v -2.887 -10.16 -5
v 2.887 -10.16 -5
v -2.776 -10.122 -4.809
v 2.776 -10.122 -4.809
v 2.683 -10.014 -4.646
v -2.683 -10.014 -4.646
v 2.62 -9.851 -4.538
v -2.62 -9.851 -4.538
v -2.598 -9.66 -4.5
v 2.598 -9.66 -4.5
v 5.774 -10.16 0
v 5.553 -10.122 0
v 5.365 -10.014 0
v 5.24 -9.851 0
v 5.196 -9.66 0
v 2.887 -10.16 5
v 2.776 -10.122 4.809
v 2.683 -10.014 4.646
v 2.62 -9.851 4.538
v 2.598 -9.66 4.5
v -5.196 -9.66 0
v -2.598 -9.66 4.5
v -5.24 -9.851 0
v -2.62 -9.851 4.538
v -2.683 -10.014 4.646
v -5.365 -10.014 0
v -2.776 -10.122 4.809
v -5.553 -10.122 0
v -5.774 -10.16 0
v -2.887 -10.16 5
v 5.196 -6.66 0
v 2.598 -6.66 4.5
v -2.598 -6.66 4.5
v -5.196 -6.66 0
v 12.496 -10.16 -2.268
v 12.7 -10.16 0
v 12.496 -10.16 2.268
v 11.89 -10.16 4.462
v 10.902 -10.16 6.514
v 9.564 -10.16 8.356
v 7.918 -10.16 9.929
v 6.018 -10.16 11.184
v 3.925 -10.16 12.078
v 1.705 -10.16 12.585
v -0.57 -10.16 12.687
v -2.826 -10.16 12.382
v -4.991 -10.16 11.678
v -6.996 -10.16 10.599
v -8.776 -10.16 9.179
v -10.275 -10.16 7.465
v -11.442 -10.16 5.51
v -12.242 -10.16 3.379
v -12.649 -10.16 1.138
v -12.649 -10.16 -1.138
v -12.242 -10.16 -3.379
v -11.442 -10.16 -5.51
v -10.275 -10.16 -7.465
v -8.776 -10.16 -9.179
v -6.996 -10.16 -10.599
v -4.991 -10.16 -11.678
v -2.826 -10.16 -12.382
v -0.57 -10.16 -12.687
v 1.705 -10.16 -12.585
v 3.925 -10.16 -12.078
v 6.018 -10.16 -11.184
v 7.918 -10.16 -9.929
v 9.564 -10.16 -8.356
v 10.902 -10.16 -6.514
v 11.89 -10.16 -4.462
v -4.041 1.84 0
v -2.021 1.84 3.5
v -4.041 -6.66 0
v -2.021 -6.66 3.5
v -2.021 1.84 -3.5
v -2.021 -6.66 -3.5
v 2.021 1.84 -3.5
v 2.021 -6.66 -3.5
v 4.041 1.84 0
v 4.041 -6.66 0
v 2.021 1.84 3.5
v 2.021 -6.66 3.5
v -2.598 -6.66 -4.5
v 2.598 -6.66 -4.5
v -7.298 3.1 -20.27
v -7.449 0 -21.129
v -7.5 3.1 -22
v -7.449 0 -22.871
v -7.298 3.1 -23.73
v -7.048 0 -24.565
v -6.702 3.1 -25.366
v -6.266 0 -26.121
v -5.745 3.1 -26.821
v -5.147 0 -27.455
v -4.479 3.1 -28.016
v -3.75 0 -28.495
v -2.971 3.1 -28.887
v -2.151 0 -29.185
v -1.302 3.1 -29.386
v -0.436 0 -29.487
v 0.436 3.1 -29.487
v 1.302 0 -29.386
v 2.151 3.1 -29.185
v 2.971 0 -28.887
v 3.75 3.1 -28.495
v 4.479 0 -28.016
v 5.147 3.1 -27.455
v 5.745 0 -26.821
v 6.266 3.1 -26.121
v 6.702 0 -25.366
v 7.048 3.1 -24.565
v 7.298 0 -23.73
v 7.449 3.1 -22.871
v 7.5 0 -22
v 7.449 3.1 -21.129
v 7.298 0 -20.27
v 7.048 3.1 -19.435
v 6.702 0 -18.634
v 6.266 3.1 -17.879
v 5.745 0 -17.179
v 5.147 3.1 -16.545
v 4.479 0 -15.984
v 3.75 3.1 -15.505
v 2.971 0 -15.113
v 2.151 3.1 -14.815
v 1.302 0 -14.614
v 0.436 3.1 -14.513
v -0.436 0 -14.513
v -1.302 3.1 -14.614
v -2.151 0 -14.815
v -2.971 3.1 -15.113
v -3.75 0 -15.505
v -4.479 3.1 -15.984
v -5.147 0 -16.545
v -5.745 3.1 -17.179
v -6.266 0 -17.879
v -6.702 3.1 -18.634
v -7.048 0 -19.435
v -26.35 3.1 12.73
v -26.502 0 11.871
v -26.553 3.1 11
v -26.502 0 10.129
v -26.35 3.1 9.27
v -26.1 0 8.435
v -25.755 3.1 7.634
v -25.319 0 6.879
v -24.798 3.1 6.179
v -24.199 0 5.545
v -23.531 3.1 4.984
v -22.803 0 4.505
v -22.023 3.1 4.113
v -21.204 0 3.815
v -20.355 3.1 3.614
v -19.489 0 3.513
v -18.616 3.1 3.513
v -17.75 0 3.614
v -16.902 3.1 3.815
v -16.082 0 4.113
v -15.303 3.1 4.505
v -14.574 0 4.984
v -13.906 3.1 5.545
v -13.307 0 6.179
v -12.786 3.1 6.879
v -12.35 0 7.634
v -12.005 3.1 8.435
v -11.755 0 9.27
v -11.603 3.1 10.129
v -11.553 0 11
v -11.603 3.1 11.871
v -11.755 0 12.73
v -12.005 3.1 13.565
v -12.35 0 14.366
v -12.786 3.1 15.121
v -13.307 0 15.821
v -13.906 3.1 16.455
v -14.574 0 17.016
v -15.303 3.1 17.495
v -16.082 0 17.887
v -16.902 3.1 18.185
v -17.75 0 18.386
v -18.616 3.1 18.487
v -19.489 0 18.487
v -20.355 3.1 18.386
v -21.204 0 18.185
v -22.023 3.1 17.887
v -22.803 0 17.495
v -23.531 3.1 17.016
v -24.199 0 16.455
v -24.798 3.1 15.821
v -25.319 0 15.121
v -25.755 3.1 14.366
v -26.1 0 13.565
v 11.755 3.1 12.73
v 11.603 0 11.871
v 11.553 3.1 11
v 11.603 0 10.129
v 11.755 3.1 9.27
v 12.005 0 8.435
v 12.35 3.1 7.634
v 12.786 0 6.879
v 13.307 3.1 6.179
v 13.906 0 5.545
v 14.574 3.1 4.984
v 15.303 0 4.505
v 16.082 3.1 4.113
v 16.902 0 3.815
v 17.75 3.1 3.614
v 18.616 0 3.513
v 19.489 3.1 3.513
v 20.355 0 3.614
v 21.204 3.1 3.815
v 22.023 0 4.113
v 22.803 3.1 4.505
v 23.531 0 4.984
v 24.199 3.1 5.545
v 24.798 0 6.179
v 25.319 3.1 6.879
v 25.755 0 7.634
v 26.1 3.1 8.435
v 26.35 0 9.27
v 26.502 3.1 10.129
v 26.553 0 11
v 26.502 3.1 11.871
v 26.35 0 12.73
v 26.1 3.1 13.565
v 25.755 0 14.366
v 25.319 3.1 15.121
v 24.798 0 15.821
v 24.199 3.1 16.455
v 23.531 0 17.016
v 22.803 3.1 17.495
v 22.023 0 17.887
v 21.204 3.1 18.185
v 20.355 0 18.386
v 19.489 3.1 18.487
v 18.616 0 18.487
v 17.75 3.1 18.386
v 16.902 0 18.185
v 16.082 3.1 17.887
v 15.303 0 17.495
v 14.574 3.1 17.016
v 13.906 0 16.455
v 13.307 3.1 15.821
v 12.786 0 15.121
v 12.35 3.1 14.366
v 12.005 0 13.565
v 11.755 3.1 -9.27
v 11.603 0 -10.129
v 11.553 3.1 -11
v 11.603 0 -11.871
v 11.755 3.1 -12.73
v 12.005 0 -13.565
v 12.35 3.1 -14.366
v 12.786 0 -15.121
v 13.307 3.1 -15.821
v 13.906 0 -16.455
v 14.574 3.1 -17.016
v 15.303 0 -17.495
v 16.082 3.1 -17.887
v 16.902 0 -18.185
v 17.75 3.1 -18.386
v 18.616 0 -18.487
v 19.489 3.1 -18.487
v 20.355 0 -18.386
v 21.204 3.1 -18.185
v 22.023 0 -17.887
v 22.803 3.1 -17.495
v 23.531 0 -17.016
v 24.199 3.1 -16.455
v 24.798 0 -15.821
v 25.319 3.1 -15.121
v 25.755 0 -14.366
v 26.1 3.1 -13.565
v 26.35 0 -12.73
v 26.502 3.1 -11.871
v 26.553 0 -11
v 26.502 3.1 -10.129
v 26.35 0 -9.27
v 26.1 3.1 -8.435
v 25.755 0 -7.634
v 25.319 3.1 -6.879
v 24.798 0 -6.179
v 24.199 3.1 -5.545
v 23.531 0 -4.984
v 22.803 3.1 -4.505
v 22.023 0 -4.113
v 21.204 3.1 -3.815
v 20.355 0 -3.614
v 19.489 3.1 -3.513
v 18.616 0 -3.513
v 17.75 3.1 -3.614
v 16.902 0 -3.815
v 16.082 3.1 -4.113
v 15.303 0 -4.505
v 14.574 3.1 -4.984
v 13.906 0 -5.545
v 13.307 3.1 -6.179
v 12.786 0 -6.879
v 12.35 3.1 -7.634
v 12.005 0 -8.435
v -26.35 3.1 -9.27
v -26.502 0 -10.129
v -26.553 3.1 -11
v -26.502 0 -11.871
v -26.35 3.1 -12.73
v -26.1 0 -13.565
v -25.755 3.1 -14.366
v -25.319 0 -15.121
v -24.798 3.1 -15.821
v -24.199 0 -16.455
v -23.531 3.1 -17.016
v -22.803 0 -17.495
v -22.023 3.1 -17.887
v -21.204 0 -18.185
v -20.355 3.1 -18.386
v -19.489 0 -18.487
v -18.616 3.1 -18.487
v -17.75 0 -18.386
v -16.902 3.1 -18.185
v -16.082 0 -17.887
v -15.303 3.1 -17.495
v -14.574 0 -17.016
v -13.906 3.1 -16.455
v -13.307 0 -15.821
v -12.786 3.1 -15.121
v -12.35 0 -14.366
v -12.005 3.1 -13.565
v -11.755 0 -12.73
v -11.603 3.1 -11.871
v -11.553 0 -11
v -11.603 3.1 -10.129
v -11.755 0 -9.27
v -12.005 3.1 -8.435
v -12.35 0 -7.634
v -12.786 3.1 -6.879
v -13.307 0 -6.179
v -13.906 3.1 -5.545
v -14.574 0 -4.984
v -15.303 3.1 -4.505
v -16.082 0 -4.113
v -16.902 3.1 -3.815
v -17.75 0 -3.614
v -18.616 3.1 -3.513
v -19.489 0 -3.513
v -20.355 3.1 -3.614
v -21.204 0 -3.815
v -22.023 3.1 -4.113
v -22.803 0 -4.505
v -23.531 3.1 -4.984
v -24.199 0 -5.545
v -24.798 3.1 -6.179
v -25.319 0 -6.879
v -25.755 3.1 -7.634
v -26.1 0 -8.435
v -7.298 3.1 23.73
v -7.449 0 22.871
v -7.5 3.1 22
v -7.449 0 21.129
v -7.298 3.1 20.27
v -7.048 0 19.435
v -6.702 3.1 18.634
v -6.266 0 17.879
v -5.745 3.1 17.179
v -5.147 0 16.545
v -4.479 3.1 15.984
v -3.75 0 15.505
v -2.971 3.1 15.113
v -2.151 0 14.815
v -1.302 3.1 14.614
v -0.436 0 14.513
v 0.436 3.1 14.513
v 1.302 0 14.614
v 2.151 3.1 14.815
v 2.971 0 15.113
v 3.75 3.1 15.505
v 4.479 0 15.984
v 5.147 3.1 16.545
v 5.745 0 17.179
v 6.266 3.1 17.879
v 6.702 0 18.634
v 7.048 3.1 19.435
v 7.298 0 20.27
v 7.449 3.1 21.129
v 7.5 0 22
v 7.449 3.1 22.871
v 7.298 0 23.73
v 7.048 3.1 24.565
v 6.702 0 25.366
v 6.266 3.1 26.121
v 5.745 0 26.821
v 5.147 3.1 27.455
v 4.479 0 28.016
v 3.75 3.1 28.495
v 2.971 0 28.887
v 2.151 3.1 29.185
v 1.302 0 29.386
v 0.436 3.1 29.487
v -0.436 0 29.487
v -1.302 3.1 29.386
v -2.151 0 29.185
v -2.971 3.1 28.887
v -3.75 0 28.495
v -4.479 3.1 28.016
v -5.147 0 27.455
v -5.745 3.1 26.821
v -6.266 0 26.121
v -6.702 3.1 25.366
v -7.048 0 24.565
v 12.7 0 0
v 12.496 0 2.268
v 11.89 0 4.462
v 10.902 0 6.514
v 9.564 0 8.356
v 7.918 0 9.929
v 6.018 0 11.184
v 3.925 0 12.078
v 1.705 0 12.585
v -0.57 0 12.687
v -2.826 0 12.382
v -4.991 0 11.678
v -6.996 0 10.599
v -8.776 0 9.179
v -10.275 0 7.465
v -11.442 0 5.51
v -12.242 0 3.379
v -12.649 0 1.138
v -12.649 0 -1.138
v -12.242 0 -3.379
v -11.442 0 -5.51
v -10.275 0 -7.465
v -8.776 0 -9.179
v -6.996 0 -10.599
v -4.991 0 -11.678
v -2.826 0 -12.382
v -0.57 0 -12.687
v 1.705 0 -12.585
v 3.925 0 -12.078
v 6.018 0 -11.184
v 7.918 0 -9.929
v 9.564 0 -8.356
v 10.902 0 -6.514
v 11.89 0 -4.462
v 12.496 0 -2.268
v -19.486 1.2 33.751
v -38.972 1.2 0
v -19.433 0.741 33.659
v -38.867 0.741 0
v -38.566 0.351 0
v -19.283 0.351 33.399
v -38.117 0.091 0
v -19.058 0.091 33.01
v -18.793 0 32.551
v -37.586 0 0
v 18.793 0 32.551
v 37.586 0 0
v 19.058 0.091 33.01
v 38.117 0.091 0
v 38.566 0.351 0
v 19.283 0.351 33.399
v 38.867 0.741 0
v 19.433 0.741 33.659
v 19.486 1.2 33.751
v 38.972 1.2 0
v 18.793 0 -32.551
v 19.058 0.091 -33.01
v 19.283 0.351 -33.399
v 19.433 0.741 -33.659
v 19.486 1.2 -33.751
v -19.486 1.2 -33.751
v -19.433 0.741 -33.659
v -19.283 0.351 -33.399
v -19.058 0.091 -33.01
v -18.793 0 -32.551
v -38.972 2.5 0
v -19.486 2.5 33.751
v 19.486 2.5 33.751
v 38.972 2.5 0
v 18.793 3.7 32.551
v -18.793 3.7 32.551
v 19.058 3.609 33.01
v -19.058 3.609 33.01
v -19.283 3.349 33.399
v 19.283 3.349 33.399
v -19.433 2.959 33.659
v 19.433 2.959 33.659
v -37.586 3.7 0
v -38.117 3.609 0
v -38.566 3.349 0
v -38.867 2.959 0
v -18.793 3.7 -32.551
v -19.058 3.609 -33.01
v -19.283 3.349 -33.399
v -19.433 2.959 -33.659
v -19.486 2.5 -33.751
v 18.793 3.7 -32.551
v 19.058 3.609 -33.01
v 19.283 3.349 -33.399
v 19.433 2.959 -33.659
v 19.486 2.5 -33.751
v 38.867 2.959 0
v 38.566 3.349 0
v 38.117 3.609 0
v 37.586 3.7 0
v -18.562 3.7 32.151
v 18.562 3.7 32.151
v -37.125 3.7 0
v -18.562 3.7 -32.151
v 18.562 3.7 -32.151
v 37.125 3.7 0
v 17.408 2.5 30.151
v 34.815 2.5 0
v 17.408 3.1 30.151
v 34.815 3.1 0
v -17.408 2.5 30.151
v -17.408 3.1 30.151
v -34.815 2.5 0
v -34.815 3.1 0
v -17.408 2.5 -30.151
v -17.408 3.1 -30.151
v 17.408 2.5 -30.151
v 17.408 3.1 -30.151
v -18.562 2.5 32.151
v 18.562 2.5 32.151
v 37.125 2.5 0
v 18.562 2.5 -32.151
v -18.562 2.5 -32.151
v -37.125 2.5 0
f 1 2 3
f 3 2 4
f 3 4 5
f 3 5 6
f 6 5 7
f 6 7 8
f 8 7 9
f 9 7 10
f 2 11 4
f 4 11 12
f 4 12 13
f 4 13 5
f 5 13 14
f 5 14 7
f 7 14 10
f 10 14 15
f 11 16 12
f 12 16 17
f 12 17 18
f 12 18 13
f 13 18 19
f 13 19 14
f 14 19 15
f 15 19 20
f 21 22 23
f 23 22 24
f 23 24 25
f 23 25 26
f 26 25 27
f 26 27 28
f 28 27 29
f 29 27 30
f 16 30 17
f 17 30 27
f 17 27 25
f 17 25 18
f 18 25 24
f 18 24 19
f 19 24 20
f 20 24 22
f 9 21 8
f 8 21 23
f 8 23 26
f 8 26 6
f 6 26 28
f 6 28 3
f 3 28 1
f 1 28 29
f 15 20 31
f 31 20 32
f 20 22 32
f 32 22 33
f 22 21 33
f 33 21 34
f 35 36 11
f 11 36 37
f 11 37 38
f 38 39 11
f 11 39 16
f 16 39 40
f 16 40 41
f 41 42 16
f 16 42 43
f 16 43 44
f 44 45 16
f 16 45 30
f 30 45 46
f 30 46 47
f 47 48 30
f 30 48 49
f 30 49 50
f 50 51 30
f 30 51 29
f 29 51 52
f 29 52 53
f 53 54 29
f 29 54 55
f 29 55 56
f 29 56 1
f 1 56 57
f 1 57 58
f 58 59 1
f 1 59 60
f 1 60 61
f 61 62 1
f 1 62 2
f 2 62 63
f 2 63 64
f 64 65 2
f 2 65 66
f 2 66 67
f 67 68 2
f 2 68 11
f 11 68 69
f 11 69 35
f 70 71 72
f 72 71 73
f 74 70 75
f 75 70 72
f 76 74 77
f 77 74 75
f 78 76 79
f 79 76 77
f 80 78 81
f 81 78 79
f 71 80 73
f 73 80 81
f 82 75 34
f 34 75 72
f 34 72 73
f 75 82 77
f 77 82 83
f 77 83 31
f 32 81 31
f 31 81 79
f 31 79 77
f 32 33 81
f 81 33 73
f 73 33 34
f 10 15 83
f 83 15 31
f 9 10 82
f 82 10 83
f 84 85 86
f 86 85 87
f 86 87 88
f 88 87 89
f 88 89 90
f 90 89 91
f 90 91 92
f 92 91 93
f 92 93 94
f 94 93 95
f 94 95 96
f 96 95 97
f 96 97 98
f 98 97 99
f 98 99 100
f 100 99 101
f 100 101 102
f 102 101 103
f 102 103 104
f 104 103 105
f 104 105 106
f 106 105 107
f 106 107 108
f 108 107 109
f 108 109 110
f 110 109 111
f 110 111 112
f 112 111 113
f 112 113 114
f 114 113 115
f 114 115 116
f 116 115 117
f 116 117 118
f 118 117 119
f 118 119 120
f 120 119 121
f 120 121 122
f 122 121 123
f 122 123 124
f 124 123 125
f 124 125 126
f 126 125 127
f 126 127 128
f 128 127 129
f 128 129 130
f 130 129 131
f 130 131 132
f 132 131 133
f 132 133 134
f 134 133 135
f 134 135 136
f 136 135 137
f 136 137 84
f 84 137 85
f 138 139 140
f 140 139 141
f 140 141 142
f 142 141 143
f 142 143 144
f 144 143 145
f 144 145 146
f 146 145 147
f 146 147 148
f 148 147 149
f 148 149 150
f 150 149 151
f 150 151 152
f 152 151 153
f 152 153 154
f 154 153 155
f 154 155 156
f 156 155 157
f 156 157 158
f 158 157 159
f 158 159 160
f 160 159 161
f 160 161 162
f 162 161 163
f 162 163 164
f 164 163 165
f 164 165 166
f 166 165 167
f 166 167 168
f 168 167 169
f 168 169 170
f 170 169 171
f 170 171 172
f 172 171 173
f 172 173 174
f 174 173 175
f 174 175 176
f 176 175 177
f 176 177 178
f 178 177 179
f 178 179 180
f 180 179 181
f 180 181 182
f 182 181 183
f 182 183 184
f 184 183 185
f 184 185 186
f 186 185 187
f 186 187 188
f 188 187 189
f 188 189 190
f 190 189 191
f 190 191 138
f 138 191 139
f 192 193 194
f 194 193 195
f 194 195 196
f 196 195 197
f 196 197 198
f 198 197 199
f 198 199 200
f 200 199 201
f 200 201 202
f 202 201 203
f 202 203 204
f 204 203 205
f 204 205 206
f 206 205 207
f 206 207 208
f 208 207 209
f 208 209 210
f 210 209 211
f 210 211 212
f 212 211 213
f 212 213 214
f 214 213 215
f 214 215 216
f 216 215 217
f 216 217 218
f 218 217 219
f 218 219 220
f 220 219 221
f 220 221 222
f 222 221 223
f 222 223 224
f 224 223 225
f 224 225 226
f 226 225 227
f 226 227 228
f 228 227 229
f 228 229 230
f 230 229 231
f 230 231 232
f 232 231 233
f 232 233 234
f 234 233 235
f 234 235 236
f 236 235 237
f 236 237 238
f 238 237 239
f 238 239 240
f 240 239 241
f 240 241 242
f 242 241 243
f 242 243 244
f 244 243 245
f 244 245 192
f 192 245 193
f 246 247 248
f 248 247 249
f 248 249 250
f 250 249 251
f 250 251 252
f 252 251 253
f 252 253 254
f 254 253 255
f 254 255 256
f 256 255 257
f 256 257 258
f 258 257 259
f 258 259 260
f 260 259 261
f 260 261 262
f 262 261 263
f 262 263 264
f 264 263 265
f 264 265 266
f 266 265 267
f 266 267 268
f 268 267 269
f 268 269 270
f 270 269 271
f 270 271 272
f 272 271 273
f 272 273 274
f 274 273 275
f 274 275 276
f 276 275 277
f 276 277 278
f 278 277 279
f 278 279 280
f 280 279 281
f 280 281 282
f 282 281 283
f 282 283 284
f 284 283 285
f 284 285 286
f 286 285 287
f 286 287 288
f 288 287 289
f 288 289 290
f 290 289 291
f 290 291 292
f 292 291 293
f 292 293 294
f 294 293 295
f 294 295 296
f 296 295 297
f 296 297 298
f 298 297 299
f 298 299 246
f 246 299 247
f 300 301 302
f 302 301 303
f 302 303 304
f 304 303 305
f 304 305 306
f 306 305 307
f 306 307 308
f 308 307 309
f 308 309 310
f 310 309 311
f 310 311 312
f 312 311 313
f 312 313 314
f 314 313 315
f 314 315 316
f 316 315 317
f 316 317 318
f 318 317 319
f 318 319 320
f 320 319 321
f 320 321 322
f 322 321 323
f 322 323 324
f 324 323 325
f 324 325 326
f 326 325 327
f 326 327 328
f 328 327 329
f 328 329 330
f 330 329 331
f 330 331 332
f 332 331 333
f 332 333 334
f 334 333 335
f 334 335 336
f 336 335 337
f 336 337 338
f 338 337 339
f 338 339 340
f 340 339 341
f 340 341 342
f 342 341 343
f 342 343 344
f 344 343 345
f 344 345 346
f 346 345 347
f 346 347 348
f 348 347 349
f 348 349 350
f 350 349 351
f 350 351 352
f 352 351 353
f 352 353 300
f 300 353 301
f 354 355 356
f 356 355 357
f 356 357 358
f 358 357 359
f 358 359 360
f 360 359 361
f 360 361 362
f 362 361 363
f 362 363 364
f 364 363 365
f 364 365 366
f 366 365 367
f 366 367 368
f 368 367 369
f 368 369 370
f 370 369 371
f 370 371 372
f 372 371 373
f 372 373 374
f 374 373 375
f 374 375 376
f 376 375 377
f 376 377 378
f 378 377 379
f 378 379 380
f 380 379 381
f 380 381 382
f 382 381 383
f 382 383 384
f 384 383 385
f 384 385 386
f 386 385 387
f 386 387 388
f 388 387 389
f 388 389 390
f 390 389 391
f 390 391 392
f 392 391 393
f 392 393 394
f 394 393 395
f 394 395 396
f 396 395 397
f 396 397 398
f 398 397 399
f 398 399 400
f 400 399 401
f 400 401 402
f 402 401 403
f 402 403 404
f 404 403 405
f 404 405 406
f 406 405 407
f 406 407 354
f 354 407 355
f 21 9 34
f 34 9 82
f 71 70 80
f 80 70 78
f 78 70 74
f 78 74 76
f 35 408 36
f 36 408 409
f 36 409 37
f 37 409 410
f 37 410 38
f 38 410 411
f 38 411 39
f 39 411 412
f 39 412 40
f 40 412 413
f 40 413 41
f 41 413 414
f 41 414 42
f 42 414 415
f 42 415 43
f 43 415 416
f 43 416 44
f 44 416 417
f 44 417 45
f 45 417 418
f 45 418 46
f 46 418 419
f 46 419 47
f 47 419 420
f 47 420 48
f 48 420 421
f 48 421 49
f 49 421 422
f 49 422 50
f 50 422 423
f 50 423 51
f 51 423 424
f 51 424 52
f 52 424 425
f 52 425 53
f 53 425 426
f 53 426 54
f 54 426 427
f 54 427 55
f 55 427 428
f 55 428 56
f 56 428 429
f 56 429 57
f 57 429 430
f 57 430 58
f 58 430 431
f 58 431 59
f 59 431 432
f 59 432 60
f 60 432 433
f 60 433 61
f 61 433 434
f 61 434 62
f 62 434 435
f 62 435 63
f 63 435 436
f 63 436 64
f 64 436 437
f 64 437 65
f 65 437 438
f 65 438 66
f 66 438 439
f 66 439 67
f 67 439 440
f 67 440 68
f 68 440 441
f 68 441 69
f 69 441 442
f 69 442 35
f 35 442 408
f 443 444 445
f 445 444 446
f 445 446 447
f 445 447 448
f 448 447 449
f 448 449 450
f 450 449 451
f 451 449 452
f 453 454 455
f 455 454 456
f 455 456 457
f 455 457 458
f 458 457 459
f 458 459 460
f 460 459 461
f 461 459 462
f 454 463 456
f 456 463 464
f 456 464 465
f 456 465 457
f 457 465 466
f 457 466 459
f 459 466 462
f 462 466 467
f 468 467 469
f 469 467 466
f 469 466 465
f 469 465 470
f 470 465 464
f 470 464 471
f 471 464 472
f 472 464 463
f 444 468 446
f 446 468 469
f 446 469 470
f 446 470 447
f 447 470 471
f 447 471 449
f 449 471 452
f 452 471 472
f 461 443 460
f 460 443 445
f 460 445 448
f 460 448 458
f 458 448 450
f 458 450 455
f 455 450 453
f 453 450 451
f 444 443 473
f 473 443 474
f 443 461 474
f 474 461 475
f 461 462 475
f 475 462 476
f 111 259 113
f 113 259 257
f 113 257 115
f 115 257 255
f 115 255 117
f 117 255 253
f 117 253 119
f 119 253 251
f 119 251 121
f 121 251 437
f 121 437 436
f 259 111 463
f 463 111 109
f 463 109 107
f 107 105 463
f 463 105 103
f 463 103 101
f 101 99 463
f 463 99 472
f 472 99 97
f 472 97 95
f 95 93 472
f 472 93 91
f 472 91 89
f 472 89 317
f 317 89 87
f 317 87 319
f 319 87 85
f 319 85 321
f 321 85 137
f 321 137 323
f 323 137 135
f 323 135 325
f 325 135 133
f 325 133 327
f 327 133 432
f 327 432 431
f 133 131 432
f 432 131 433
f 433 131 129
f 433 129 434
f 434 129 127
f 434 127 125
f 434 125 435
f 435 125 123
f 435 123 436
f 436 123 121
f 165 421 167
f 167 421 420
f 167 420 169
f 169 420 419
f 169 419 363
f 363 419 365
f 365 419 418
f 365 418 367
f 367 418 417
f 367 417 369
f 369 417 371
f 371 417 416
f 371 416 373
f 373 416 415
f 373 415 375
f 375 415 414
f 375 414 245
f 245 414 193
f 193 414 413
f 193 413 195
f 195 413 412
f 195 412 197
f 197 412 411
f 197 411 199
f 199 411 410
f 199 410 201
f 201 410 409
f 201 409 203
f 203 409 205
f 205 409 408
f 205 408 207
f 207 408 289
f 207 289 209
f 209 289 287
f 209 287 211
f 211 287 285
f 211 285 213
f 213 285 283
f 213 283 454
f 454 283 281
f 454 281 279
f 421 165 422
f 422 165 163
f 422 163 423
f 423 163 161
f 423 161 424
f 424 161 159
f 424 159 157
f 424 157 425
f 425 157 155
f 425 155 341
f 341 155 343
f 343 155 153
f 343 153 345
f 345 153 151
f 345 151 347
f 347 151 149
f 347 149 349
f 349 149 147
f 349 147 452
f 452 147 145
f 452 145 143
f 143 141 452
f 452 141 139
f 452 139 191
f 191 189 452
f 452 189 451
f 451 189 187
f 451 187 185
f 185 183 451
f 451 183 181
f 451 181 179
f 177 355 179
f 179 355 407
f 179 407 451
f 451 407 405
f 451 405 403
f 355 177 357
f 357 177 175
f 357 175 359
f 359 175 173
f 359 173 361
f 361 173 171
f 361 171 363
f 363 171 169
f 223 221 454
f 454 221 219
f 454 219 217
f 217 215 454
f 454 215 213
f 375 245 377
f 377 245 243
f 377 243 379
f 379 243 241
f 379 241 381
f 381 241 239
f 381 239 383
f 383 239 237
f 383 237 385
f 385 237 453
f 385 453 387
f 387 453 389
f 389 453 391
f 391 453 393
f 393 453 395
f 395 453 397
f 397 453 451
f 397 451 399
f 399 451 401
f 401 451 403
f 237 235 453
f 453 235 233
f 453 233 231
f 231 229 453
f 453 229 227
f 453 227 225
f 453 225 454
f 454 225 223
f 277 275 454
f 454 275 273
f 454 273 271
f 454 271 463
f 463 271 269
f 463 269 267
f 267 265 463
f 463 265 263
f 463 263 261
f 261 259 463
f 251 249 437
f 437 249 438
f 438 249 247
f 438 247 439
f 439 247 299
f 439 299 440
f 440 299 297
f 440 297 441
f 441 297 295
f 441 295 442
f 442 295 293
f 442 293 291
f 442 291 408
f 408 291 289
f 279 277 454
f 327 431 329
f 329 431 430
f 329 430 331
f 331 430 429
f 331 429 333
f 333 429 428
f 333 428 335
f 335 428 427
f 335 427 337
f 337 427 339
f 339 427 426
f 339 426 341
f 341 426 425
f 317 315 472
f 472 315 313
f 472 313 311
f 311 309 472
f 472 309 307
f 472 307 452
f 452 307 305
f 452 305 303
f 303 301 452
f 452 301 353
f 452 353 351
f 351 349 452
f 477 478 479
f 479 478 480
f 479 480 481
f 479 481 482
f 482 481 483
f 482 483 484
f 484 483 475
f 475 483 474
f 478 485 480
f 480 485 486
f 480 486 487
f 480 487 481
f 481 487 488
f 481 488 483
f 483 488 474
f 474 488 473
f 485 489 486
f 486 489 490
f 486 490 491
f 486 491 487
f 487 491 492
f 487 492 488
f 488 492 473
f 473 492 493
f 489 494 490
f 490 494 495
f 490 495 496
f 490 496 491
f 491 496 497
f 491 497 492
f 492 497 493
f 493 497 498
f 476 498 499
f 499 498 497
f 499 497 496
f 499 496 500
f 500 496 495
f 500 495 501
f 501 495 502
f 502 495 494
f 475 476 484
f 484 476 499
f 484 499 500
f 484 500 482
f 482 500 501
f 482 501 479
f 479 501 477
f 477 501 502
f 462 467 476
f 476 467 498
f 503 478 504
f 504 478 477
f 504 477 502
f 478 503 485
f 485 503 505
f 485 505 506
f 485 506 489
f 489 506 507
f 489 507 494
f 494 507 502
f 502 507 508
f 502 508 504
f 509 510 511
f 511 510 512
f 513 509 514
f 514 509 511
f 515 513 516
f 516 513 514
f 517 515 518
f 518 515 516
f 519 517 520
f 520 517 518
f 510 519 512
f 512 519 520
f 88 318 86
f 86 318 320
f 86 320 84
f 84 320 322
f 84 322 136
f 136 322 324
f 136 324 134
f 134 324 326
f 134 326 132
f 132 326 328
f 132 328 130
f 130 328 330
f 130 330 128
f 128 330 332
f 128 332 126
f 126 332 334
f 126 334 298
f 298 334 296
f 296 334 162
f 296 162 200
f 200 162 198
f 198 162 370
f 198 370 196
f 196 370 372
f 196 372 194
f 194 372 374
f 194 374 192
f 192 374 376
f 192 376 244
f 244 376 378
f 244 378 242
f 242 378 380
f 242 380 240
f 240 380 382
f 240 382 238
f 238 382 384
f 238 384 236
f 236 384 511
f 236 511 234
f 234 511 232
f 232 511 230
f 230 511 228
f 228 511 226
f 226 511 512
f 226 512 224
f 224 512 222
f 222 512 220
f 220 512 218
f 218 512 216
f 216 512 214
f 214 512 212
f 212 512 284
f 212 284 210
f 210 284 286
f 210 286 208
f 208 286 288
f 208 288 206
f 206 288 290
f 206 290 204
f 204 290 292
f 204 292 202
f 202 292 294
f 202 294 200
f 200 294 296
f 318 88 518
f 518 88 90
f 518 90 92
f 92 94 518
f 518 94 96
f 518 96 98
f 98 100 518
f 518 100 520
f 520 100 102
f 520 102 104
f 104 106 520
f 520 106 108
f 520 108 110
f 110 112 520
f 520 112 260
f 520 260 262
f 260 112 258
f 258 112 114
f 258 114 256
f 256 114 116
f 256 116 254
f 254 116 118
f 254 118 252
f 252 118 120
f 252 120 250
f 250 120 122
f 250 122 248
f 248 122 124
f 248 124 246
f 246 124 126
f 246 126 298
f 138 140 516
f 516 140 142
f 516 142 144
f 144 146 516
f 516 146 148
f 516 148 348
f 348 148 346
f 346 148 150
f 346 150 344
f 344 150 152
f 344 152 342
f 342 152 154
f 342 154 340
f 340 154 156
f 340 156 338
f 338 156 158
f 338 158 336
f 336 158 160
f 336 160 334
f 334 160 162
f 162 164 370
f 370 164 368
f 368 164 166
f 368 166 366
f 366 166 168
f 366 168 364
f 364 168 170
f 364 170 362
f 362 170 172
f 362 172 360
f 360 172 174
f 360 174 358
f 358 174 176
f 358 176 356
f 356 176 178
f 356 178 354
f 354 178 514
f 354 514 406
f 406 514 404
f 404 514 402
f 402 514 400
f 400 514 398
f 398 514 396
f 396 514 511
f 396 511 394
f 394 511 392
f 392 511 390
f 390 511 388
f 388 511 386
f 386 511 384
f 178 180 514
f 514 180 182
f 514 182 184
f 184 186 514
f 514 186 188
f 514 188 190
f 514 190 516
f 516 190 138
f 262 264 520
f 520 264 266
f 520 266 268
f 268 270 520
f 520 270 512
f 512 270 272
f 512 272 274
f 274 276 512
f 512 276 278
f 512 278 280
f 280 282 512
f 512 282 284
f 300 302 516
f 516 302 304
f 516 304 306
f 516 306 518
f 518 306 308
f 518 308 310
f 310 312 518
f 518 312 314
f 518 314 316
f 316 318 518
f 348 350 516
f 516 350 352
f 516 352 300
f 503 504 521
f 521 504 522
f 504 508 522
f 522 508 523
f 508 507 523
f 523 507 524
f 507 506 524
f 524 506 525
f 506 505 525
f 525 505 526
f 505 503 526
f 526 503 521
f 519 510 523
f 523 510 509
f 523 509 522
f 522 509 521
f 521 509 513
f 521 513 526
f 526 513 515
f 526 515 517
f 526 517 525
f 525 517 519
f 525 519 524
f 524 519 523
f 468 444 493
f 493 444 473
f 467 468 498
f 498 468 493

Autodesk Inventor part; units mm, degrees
ref_plane "YZ Plane" through (0, 0, 0) normal (1, 0, 0) x (0, 1, 0)
ref_plane "XZ Plane" through (0, 0, 0) normal (0, 1, 0) x (-1, 0, 0)
ref_plane "XY Plane" through (0, 0, 0) normal (0, 0, 1) x (1, 0, 0)
sketch "스케치1" plane through (0, 0, 0) normal (0, 1, 0) x (-1, 0, 0)
  line L0 (17.6385, -30.5508) -> (-17.6385, -30.5508)
  line L1 (-17.6385, -30.5508) -> (-35.277, 0)
  line L2 (-35.277, 0) -> (-17.6385, 30.5508)
  line L3 (-17.6385, 30.5508) -> (17.6385, 30.5508)
  line L4 (17.6385, 30.5508) -> (35.277, 0)
  line L5 (35.277, 0) -> (17.6385, -30.5508)
  line L6 (19.486, -33.7508) -> (-19.486, -33.7508)
  line L7 (-19.486, -33.7508) -> (-38.972, 0)
  line L8 (-38.972, 0) -> (-19.486, 33.7508)
  line L9 (-19.486, 33.7508) -> (19.486, 33.7508)
  line L10 (19.486, 33.7508) -> (38.972, 0)
  line L11 (38.972, 0) -> (19.486, -33.7508)
  point P0 (0, 0)
  point P1 (0, 0)
  point P2 (0, 0)
  dimension "d0" = 70.554
  dimension "d1" = 3.2
extrude "돌출1" add sketch "스케치1" along normal blind 3.7 contours L0 L1 L2 L3 L4 L5 | L6 L7 L8 L9 L10 L11
sketch "스케치2" plane through (0, 3.7, 0) normal (0, 1, 0) x (1, 0, 0)
  line L0 (-18.5623, 32.1508) -> (18.5623, 32.1508)
  line L1 (18.5623, 32.1508) -> (37.1245, 0)
  line L2 (37.1245, 0) -> (18.5623, -32.1508)
  line L3 (18.5623, -32.1508) -> (-18.5623, -32.1508)
  line L4 (-18.5623, -32.1508) -> (-37.1245, 0)
  line L5 (-37.1245, 0) -> (-18.5623, 32.1508)
  line L6 (-19.486, 33.7508) -> (-38.972, 0) projected
  point P0 (0, 0)
  point P1 (0, 0)
  dimension "d4" = 1.6
extrude "돌출2" cut sketch "스케치2" against normal blind 1.2
sketch "스케치3" plane through (0, 2.5, 0) normal (0, 1, 0) x (1, 0, 0)
  line L0 (17.4076, -30.1508) -> (-17.4076, -30.1508)
  line L1 (-17.4076, -30.1508) -> (-34.8151, 0)
  line L2 (-34.8151, 0) -> (-17.4076, 30.1508)
  line L3 (-17.4076, 30.1508) -> (17.4076, 30.1508)
  line L4 (17.4076, 30.1508) -> (34.8151, 0)
  line L5 (34.8151, 0) -> (17.4076, -30.1508)
  line L6 (-18.5623, 32.1508) -> (18.5623, 32.1508) projected
  point P0 (0, 0)
  point P1 (0, 0)
  dimension "d7" = 2
extrude "돌출3" add sketch "스케치3" along normal blind 0.6
fillet "모깎기1" radius 1.2 12 edges at (0, 3.7, -33.7508) (0, 0, -33.7508) (-29.229, 3.7, -16.8754) (-29.229, 0, -16.8754) (-29.229, 3.7, 16.8754) (-29.229, 0, 16.8754) (0, 0, 33.7508) (0, 3.7, 33.7508) (29.229, 0, 16.8754) (29.229, 3.7, 16.8754) (29.229, 3.7, -16.8754) (29.229, 0, -16.8754)
sketch "스케치11" plane through (0, 0, 0) normal (0, -1, 0) x (1, 0, 0)
  circle A0 centre (0, 0) radius 12.7
  dimension "d49" = 25.4
extrude "돌출11" add sketch "스케치11" along normal blind 10.16
sketch "스케치12" plane through (0, -10.16, 0) normal (0, -1, 0) x (1, 0, 0)
  circle A0 centre (0, 0) radius 4.5
  line L0 (-2.5981, 4.5) -> (2.5981, 4.5)
  line L1 (2.5981, 4.5) -> (5.1962, 0)
  line L2 (5.1962, 0) -> (2.5981, -4.5)
  line L3 (2.5981, -4.5) -> (-2.5981, -4.5)
  line L4 (-2.5981, -4.5) -> (-5.1962, 0)
  line L5 (-5.1962, 0) -> (-2.5981, 4.5)
  point P0 (-3.8971, 2.25)
  point P1 (-3.8971, -2.25)
  point P2 (0, 4.5)
  point P3 (0, -4.5)
  point P4 (3.8971, -2.25)
  point P5 (3.8971, 2.25)
  dimension "d52" = 9
extrude "돌출12" cut sketch "스케치12" against normal blind 12
sketch "스케치13" plane through (0, 0, 0) normal (0, -1, 0) x (1, 0, 0)
  circle A0 centre (0, -22) radius 7.5
  circle A1 centre (19.0526, -11) radius 7.5
  circle A2 centre (19.0526, 11) radius 7.5
  circle A3 centre (0, 22) radius 7.5
  circle A4 centre (-19.0526, 11) radius 7.5
  circle A5 centre (-19.0526, -11) radius 7.5
  point P0 (0, 0)
  dimension "d57" = 15
  dimension "d58" = 22
  dimension "d61" = 360
extrude "돌출13" cut sketch "스케치13" against normal up to surface (3.1 mm away)
sketch "스케치16" plane through (0, 1.84, 0) normal (0, -1, 0) x (1, 0, 0)
  line L0 (-2.5981, 4.5) -> (2.5981, 4.5) projected
  line L1 (-5.1962, 0) -> (-2.5981, 4.5) projected
  line L2 (-2.5981, -4.5) -> (-5.1962, 0) projected
  line L3 (2.5981, -4.5) -> (-2.5981, -4.5) projected
  line L4 (5.1962, 0) -> (2.5981, -4.5) projected
  line L5 (2.5981, 4.5) -> (5.1962, 0) projected
  line L6 (-2.0207, 3.5) -> (2.0207, 3.5)
  line L7 (2.0207, 3.5) -> (4.0415, 0)
  line L8 (4.0415, 0) -> (2.0207, -3.5)
  line L9 (2.0207, -3.5) -> (-2.0207, -3.5)
  line L10 (-2.0207, -3.5) -> (-4.0415, 0)
  line L11 (-4.0415, 0) -> (-2.0207, 3.5)
  point P0 (0, 0)
  point P1 (0, 0)
  point P2 (0, 3.5)
  dimension "d83" = 1
extrude "돌출14" add sketch "스케치16" along normal blind 8.5
fillet "모깎기2" radius 0.5 6 edges at (0, -10.16, 4.5) (-3.8971, -10.16, 2.25) (3.8971, -10.16, 2.25) (3.8971, -10.16, -2.25) (-3.8971, -10.16, -2.25) (0, -10.16, -4.5)
properties part number "OV-PAM_n_6_bottom"
